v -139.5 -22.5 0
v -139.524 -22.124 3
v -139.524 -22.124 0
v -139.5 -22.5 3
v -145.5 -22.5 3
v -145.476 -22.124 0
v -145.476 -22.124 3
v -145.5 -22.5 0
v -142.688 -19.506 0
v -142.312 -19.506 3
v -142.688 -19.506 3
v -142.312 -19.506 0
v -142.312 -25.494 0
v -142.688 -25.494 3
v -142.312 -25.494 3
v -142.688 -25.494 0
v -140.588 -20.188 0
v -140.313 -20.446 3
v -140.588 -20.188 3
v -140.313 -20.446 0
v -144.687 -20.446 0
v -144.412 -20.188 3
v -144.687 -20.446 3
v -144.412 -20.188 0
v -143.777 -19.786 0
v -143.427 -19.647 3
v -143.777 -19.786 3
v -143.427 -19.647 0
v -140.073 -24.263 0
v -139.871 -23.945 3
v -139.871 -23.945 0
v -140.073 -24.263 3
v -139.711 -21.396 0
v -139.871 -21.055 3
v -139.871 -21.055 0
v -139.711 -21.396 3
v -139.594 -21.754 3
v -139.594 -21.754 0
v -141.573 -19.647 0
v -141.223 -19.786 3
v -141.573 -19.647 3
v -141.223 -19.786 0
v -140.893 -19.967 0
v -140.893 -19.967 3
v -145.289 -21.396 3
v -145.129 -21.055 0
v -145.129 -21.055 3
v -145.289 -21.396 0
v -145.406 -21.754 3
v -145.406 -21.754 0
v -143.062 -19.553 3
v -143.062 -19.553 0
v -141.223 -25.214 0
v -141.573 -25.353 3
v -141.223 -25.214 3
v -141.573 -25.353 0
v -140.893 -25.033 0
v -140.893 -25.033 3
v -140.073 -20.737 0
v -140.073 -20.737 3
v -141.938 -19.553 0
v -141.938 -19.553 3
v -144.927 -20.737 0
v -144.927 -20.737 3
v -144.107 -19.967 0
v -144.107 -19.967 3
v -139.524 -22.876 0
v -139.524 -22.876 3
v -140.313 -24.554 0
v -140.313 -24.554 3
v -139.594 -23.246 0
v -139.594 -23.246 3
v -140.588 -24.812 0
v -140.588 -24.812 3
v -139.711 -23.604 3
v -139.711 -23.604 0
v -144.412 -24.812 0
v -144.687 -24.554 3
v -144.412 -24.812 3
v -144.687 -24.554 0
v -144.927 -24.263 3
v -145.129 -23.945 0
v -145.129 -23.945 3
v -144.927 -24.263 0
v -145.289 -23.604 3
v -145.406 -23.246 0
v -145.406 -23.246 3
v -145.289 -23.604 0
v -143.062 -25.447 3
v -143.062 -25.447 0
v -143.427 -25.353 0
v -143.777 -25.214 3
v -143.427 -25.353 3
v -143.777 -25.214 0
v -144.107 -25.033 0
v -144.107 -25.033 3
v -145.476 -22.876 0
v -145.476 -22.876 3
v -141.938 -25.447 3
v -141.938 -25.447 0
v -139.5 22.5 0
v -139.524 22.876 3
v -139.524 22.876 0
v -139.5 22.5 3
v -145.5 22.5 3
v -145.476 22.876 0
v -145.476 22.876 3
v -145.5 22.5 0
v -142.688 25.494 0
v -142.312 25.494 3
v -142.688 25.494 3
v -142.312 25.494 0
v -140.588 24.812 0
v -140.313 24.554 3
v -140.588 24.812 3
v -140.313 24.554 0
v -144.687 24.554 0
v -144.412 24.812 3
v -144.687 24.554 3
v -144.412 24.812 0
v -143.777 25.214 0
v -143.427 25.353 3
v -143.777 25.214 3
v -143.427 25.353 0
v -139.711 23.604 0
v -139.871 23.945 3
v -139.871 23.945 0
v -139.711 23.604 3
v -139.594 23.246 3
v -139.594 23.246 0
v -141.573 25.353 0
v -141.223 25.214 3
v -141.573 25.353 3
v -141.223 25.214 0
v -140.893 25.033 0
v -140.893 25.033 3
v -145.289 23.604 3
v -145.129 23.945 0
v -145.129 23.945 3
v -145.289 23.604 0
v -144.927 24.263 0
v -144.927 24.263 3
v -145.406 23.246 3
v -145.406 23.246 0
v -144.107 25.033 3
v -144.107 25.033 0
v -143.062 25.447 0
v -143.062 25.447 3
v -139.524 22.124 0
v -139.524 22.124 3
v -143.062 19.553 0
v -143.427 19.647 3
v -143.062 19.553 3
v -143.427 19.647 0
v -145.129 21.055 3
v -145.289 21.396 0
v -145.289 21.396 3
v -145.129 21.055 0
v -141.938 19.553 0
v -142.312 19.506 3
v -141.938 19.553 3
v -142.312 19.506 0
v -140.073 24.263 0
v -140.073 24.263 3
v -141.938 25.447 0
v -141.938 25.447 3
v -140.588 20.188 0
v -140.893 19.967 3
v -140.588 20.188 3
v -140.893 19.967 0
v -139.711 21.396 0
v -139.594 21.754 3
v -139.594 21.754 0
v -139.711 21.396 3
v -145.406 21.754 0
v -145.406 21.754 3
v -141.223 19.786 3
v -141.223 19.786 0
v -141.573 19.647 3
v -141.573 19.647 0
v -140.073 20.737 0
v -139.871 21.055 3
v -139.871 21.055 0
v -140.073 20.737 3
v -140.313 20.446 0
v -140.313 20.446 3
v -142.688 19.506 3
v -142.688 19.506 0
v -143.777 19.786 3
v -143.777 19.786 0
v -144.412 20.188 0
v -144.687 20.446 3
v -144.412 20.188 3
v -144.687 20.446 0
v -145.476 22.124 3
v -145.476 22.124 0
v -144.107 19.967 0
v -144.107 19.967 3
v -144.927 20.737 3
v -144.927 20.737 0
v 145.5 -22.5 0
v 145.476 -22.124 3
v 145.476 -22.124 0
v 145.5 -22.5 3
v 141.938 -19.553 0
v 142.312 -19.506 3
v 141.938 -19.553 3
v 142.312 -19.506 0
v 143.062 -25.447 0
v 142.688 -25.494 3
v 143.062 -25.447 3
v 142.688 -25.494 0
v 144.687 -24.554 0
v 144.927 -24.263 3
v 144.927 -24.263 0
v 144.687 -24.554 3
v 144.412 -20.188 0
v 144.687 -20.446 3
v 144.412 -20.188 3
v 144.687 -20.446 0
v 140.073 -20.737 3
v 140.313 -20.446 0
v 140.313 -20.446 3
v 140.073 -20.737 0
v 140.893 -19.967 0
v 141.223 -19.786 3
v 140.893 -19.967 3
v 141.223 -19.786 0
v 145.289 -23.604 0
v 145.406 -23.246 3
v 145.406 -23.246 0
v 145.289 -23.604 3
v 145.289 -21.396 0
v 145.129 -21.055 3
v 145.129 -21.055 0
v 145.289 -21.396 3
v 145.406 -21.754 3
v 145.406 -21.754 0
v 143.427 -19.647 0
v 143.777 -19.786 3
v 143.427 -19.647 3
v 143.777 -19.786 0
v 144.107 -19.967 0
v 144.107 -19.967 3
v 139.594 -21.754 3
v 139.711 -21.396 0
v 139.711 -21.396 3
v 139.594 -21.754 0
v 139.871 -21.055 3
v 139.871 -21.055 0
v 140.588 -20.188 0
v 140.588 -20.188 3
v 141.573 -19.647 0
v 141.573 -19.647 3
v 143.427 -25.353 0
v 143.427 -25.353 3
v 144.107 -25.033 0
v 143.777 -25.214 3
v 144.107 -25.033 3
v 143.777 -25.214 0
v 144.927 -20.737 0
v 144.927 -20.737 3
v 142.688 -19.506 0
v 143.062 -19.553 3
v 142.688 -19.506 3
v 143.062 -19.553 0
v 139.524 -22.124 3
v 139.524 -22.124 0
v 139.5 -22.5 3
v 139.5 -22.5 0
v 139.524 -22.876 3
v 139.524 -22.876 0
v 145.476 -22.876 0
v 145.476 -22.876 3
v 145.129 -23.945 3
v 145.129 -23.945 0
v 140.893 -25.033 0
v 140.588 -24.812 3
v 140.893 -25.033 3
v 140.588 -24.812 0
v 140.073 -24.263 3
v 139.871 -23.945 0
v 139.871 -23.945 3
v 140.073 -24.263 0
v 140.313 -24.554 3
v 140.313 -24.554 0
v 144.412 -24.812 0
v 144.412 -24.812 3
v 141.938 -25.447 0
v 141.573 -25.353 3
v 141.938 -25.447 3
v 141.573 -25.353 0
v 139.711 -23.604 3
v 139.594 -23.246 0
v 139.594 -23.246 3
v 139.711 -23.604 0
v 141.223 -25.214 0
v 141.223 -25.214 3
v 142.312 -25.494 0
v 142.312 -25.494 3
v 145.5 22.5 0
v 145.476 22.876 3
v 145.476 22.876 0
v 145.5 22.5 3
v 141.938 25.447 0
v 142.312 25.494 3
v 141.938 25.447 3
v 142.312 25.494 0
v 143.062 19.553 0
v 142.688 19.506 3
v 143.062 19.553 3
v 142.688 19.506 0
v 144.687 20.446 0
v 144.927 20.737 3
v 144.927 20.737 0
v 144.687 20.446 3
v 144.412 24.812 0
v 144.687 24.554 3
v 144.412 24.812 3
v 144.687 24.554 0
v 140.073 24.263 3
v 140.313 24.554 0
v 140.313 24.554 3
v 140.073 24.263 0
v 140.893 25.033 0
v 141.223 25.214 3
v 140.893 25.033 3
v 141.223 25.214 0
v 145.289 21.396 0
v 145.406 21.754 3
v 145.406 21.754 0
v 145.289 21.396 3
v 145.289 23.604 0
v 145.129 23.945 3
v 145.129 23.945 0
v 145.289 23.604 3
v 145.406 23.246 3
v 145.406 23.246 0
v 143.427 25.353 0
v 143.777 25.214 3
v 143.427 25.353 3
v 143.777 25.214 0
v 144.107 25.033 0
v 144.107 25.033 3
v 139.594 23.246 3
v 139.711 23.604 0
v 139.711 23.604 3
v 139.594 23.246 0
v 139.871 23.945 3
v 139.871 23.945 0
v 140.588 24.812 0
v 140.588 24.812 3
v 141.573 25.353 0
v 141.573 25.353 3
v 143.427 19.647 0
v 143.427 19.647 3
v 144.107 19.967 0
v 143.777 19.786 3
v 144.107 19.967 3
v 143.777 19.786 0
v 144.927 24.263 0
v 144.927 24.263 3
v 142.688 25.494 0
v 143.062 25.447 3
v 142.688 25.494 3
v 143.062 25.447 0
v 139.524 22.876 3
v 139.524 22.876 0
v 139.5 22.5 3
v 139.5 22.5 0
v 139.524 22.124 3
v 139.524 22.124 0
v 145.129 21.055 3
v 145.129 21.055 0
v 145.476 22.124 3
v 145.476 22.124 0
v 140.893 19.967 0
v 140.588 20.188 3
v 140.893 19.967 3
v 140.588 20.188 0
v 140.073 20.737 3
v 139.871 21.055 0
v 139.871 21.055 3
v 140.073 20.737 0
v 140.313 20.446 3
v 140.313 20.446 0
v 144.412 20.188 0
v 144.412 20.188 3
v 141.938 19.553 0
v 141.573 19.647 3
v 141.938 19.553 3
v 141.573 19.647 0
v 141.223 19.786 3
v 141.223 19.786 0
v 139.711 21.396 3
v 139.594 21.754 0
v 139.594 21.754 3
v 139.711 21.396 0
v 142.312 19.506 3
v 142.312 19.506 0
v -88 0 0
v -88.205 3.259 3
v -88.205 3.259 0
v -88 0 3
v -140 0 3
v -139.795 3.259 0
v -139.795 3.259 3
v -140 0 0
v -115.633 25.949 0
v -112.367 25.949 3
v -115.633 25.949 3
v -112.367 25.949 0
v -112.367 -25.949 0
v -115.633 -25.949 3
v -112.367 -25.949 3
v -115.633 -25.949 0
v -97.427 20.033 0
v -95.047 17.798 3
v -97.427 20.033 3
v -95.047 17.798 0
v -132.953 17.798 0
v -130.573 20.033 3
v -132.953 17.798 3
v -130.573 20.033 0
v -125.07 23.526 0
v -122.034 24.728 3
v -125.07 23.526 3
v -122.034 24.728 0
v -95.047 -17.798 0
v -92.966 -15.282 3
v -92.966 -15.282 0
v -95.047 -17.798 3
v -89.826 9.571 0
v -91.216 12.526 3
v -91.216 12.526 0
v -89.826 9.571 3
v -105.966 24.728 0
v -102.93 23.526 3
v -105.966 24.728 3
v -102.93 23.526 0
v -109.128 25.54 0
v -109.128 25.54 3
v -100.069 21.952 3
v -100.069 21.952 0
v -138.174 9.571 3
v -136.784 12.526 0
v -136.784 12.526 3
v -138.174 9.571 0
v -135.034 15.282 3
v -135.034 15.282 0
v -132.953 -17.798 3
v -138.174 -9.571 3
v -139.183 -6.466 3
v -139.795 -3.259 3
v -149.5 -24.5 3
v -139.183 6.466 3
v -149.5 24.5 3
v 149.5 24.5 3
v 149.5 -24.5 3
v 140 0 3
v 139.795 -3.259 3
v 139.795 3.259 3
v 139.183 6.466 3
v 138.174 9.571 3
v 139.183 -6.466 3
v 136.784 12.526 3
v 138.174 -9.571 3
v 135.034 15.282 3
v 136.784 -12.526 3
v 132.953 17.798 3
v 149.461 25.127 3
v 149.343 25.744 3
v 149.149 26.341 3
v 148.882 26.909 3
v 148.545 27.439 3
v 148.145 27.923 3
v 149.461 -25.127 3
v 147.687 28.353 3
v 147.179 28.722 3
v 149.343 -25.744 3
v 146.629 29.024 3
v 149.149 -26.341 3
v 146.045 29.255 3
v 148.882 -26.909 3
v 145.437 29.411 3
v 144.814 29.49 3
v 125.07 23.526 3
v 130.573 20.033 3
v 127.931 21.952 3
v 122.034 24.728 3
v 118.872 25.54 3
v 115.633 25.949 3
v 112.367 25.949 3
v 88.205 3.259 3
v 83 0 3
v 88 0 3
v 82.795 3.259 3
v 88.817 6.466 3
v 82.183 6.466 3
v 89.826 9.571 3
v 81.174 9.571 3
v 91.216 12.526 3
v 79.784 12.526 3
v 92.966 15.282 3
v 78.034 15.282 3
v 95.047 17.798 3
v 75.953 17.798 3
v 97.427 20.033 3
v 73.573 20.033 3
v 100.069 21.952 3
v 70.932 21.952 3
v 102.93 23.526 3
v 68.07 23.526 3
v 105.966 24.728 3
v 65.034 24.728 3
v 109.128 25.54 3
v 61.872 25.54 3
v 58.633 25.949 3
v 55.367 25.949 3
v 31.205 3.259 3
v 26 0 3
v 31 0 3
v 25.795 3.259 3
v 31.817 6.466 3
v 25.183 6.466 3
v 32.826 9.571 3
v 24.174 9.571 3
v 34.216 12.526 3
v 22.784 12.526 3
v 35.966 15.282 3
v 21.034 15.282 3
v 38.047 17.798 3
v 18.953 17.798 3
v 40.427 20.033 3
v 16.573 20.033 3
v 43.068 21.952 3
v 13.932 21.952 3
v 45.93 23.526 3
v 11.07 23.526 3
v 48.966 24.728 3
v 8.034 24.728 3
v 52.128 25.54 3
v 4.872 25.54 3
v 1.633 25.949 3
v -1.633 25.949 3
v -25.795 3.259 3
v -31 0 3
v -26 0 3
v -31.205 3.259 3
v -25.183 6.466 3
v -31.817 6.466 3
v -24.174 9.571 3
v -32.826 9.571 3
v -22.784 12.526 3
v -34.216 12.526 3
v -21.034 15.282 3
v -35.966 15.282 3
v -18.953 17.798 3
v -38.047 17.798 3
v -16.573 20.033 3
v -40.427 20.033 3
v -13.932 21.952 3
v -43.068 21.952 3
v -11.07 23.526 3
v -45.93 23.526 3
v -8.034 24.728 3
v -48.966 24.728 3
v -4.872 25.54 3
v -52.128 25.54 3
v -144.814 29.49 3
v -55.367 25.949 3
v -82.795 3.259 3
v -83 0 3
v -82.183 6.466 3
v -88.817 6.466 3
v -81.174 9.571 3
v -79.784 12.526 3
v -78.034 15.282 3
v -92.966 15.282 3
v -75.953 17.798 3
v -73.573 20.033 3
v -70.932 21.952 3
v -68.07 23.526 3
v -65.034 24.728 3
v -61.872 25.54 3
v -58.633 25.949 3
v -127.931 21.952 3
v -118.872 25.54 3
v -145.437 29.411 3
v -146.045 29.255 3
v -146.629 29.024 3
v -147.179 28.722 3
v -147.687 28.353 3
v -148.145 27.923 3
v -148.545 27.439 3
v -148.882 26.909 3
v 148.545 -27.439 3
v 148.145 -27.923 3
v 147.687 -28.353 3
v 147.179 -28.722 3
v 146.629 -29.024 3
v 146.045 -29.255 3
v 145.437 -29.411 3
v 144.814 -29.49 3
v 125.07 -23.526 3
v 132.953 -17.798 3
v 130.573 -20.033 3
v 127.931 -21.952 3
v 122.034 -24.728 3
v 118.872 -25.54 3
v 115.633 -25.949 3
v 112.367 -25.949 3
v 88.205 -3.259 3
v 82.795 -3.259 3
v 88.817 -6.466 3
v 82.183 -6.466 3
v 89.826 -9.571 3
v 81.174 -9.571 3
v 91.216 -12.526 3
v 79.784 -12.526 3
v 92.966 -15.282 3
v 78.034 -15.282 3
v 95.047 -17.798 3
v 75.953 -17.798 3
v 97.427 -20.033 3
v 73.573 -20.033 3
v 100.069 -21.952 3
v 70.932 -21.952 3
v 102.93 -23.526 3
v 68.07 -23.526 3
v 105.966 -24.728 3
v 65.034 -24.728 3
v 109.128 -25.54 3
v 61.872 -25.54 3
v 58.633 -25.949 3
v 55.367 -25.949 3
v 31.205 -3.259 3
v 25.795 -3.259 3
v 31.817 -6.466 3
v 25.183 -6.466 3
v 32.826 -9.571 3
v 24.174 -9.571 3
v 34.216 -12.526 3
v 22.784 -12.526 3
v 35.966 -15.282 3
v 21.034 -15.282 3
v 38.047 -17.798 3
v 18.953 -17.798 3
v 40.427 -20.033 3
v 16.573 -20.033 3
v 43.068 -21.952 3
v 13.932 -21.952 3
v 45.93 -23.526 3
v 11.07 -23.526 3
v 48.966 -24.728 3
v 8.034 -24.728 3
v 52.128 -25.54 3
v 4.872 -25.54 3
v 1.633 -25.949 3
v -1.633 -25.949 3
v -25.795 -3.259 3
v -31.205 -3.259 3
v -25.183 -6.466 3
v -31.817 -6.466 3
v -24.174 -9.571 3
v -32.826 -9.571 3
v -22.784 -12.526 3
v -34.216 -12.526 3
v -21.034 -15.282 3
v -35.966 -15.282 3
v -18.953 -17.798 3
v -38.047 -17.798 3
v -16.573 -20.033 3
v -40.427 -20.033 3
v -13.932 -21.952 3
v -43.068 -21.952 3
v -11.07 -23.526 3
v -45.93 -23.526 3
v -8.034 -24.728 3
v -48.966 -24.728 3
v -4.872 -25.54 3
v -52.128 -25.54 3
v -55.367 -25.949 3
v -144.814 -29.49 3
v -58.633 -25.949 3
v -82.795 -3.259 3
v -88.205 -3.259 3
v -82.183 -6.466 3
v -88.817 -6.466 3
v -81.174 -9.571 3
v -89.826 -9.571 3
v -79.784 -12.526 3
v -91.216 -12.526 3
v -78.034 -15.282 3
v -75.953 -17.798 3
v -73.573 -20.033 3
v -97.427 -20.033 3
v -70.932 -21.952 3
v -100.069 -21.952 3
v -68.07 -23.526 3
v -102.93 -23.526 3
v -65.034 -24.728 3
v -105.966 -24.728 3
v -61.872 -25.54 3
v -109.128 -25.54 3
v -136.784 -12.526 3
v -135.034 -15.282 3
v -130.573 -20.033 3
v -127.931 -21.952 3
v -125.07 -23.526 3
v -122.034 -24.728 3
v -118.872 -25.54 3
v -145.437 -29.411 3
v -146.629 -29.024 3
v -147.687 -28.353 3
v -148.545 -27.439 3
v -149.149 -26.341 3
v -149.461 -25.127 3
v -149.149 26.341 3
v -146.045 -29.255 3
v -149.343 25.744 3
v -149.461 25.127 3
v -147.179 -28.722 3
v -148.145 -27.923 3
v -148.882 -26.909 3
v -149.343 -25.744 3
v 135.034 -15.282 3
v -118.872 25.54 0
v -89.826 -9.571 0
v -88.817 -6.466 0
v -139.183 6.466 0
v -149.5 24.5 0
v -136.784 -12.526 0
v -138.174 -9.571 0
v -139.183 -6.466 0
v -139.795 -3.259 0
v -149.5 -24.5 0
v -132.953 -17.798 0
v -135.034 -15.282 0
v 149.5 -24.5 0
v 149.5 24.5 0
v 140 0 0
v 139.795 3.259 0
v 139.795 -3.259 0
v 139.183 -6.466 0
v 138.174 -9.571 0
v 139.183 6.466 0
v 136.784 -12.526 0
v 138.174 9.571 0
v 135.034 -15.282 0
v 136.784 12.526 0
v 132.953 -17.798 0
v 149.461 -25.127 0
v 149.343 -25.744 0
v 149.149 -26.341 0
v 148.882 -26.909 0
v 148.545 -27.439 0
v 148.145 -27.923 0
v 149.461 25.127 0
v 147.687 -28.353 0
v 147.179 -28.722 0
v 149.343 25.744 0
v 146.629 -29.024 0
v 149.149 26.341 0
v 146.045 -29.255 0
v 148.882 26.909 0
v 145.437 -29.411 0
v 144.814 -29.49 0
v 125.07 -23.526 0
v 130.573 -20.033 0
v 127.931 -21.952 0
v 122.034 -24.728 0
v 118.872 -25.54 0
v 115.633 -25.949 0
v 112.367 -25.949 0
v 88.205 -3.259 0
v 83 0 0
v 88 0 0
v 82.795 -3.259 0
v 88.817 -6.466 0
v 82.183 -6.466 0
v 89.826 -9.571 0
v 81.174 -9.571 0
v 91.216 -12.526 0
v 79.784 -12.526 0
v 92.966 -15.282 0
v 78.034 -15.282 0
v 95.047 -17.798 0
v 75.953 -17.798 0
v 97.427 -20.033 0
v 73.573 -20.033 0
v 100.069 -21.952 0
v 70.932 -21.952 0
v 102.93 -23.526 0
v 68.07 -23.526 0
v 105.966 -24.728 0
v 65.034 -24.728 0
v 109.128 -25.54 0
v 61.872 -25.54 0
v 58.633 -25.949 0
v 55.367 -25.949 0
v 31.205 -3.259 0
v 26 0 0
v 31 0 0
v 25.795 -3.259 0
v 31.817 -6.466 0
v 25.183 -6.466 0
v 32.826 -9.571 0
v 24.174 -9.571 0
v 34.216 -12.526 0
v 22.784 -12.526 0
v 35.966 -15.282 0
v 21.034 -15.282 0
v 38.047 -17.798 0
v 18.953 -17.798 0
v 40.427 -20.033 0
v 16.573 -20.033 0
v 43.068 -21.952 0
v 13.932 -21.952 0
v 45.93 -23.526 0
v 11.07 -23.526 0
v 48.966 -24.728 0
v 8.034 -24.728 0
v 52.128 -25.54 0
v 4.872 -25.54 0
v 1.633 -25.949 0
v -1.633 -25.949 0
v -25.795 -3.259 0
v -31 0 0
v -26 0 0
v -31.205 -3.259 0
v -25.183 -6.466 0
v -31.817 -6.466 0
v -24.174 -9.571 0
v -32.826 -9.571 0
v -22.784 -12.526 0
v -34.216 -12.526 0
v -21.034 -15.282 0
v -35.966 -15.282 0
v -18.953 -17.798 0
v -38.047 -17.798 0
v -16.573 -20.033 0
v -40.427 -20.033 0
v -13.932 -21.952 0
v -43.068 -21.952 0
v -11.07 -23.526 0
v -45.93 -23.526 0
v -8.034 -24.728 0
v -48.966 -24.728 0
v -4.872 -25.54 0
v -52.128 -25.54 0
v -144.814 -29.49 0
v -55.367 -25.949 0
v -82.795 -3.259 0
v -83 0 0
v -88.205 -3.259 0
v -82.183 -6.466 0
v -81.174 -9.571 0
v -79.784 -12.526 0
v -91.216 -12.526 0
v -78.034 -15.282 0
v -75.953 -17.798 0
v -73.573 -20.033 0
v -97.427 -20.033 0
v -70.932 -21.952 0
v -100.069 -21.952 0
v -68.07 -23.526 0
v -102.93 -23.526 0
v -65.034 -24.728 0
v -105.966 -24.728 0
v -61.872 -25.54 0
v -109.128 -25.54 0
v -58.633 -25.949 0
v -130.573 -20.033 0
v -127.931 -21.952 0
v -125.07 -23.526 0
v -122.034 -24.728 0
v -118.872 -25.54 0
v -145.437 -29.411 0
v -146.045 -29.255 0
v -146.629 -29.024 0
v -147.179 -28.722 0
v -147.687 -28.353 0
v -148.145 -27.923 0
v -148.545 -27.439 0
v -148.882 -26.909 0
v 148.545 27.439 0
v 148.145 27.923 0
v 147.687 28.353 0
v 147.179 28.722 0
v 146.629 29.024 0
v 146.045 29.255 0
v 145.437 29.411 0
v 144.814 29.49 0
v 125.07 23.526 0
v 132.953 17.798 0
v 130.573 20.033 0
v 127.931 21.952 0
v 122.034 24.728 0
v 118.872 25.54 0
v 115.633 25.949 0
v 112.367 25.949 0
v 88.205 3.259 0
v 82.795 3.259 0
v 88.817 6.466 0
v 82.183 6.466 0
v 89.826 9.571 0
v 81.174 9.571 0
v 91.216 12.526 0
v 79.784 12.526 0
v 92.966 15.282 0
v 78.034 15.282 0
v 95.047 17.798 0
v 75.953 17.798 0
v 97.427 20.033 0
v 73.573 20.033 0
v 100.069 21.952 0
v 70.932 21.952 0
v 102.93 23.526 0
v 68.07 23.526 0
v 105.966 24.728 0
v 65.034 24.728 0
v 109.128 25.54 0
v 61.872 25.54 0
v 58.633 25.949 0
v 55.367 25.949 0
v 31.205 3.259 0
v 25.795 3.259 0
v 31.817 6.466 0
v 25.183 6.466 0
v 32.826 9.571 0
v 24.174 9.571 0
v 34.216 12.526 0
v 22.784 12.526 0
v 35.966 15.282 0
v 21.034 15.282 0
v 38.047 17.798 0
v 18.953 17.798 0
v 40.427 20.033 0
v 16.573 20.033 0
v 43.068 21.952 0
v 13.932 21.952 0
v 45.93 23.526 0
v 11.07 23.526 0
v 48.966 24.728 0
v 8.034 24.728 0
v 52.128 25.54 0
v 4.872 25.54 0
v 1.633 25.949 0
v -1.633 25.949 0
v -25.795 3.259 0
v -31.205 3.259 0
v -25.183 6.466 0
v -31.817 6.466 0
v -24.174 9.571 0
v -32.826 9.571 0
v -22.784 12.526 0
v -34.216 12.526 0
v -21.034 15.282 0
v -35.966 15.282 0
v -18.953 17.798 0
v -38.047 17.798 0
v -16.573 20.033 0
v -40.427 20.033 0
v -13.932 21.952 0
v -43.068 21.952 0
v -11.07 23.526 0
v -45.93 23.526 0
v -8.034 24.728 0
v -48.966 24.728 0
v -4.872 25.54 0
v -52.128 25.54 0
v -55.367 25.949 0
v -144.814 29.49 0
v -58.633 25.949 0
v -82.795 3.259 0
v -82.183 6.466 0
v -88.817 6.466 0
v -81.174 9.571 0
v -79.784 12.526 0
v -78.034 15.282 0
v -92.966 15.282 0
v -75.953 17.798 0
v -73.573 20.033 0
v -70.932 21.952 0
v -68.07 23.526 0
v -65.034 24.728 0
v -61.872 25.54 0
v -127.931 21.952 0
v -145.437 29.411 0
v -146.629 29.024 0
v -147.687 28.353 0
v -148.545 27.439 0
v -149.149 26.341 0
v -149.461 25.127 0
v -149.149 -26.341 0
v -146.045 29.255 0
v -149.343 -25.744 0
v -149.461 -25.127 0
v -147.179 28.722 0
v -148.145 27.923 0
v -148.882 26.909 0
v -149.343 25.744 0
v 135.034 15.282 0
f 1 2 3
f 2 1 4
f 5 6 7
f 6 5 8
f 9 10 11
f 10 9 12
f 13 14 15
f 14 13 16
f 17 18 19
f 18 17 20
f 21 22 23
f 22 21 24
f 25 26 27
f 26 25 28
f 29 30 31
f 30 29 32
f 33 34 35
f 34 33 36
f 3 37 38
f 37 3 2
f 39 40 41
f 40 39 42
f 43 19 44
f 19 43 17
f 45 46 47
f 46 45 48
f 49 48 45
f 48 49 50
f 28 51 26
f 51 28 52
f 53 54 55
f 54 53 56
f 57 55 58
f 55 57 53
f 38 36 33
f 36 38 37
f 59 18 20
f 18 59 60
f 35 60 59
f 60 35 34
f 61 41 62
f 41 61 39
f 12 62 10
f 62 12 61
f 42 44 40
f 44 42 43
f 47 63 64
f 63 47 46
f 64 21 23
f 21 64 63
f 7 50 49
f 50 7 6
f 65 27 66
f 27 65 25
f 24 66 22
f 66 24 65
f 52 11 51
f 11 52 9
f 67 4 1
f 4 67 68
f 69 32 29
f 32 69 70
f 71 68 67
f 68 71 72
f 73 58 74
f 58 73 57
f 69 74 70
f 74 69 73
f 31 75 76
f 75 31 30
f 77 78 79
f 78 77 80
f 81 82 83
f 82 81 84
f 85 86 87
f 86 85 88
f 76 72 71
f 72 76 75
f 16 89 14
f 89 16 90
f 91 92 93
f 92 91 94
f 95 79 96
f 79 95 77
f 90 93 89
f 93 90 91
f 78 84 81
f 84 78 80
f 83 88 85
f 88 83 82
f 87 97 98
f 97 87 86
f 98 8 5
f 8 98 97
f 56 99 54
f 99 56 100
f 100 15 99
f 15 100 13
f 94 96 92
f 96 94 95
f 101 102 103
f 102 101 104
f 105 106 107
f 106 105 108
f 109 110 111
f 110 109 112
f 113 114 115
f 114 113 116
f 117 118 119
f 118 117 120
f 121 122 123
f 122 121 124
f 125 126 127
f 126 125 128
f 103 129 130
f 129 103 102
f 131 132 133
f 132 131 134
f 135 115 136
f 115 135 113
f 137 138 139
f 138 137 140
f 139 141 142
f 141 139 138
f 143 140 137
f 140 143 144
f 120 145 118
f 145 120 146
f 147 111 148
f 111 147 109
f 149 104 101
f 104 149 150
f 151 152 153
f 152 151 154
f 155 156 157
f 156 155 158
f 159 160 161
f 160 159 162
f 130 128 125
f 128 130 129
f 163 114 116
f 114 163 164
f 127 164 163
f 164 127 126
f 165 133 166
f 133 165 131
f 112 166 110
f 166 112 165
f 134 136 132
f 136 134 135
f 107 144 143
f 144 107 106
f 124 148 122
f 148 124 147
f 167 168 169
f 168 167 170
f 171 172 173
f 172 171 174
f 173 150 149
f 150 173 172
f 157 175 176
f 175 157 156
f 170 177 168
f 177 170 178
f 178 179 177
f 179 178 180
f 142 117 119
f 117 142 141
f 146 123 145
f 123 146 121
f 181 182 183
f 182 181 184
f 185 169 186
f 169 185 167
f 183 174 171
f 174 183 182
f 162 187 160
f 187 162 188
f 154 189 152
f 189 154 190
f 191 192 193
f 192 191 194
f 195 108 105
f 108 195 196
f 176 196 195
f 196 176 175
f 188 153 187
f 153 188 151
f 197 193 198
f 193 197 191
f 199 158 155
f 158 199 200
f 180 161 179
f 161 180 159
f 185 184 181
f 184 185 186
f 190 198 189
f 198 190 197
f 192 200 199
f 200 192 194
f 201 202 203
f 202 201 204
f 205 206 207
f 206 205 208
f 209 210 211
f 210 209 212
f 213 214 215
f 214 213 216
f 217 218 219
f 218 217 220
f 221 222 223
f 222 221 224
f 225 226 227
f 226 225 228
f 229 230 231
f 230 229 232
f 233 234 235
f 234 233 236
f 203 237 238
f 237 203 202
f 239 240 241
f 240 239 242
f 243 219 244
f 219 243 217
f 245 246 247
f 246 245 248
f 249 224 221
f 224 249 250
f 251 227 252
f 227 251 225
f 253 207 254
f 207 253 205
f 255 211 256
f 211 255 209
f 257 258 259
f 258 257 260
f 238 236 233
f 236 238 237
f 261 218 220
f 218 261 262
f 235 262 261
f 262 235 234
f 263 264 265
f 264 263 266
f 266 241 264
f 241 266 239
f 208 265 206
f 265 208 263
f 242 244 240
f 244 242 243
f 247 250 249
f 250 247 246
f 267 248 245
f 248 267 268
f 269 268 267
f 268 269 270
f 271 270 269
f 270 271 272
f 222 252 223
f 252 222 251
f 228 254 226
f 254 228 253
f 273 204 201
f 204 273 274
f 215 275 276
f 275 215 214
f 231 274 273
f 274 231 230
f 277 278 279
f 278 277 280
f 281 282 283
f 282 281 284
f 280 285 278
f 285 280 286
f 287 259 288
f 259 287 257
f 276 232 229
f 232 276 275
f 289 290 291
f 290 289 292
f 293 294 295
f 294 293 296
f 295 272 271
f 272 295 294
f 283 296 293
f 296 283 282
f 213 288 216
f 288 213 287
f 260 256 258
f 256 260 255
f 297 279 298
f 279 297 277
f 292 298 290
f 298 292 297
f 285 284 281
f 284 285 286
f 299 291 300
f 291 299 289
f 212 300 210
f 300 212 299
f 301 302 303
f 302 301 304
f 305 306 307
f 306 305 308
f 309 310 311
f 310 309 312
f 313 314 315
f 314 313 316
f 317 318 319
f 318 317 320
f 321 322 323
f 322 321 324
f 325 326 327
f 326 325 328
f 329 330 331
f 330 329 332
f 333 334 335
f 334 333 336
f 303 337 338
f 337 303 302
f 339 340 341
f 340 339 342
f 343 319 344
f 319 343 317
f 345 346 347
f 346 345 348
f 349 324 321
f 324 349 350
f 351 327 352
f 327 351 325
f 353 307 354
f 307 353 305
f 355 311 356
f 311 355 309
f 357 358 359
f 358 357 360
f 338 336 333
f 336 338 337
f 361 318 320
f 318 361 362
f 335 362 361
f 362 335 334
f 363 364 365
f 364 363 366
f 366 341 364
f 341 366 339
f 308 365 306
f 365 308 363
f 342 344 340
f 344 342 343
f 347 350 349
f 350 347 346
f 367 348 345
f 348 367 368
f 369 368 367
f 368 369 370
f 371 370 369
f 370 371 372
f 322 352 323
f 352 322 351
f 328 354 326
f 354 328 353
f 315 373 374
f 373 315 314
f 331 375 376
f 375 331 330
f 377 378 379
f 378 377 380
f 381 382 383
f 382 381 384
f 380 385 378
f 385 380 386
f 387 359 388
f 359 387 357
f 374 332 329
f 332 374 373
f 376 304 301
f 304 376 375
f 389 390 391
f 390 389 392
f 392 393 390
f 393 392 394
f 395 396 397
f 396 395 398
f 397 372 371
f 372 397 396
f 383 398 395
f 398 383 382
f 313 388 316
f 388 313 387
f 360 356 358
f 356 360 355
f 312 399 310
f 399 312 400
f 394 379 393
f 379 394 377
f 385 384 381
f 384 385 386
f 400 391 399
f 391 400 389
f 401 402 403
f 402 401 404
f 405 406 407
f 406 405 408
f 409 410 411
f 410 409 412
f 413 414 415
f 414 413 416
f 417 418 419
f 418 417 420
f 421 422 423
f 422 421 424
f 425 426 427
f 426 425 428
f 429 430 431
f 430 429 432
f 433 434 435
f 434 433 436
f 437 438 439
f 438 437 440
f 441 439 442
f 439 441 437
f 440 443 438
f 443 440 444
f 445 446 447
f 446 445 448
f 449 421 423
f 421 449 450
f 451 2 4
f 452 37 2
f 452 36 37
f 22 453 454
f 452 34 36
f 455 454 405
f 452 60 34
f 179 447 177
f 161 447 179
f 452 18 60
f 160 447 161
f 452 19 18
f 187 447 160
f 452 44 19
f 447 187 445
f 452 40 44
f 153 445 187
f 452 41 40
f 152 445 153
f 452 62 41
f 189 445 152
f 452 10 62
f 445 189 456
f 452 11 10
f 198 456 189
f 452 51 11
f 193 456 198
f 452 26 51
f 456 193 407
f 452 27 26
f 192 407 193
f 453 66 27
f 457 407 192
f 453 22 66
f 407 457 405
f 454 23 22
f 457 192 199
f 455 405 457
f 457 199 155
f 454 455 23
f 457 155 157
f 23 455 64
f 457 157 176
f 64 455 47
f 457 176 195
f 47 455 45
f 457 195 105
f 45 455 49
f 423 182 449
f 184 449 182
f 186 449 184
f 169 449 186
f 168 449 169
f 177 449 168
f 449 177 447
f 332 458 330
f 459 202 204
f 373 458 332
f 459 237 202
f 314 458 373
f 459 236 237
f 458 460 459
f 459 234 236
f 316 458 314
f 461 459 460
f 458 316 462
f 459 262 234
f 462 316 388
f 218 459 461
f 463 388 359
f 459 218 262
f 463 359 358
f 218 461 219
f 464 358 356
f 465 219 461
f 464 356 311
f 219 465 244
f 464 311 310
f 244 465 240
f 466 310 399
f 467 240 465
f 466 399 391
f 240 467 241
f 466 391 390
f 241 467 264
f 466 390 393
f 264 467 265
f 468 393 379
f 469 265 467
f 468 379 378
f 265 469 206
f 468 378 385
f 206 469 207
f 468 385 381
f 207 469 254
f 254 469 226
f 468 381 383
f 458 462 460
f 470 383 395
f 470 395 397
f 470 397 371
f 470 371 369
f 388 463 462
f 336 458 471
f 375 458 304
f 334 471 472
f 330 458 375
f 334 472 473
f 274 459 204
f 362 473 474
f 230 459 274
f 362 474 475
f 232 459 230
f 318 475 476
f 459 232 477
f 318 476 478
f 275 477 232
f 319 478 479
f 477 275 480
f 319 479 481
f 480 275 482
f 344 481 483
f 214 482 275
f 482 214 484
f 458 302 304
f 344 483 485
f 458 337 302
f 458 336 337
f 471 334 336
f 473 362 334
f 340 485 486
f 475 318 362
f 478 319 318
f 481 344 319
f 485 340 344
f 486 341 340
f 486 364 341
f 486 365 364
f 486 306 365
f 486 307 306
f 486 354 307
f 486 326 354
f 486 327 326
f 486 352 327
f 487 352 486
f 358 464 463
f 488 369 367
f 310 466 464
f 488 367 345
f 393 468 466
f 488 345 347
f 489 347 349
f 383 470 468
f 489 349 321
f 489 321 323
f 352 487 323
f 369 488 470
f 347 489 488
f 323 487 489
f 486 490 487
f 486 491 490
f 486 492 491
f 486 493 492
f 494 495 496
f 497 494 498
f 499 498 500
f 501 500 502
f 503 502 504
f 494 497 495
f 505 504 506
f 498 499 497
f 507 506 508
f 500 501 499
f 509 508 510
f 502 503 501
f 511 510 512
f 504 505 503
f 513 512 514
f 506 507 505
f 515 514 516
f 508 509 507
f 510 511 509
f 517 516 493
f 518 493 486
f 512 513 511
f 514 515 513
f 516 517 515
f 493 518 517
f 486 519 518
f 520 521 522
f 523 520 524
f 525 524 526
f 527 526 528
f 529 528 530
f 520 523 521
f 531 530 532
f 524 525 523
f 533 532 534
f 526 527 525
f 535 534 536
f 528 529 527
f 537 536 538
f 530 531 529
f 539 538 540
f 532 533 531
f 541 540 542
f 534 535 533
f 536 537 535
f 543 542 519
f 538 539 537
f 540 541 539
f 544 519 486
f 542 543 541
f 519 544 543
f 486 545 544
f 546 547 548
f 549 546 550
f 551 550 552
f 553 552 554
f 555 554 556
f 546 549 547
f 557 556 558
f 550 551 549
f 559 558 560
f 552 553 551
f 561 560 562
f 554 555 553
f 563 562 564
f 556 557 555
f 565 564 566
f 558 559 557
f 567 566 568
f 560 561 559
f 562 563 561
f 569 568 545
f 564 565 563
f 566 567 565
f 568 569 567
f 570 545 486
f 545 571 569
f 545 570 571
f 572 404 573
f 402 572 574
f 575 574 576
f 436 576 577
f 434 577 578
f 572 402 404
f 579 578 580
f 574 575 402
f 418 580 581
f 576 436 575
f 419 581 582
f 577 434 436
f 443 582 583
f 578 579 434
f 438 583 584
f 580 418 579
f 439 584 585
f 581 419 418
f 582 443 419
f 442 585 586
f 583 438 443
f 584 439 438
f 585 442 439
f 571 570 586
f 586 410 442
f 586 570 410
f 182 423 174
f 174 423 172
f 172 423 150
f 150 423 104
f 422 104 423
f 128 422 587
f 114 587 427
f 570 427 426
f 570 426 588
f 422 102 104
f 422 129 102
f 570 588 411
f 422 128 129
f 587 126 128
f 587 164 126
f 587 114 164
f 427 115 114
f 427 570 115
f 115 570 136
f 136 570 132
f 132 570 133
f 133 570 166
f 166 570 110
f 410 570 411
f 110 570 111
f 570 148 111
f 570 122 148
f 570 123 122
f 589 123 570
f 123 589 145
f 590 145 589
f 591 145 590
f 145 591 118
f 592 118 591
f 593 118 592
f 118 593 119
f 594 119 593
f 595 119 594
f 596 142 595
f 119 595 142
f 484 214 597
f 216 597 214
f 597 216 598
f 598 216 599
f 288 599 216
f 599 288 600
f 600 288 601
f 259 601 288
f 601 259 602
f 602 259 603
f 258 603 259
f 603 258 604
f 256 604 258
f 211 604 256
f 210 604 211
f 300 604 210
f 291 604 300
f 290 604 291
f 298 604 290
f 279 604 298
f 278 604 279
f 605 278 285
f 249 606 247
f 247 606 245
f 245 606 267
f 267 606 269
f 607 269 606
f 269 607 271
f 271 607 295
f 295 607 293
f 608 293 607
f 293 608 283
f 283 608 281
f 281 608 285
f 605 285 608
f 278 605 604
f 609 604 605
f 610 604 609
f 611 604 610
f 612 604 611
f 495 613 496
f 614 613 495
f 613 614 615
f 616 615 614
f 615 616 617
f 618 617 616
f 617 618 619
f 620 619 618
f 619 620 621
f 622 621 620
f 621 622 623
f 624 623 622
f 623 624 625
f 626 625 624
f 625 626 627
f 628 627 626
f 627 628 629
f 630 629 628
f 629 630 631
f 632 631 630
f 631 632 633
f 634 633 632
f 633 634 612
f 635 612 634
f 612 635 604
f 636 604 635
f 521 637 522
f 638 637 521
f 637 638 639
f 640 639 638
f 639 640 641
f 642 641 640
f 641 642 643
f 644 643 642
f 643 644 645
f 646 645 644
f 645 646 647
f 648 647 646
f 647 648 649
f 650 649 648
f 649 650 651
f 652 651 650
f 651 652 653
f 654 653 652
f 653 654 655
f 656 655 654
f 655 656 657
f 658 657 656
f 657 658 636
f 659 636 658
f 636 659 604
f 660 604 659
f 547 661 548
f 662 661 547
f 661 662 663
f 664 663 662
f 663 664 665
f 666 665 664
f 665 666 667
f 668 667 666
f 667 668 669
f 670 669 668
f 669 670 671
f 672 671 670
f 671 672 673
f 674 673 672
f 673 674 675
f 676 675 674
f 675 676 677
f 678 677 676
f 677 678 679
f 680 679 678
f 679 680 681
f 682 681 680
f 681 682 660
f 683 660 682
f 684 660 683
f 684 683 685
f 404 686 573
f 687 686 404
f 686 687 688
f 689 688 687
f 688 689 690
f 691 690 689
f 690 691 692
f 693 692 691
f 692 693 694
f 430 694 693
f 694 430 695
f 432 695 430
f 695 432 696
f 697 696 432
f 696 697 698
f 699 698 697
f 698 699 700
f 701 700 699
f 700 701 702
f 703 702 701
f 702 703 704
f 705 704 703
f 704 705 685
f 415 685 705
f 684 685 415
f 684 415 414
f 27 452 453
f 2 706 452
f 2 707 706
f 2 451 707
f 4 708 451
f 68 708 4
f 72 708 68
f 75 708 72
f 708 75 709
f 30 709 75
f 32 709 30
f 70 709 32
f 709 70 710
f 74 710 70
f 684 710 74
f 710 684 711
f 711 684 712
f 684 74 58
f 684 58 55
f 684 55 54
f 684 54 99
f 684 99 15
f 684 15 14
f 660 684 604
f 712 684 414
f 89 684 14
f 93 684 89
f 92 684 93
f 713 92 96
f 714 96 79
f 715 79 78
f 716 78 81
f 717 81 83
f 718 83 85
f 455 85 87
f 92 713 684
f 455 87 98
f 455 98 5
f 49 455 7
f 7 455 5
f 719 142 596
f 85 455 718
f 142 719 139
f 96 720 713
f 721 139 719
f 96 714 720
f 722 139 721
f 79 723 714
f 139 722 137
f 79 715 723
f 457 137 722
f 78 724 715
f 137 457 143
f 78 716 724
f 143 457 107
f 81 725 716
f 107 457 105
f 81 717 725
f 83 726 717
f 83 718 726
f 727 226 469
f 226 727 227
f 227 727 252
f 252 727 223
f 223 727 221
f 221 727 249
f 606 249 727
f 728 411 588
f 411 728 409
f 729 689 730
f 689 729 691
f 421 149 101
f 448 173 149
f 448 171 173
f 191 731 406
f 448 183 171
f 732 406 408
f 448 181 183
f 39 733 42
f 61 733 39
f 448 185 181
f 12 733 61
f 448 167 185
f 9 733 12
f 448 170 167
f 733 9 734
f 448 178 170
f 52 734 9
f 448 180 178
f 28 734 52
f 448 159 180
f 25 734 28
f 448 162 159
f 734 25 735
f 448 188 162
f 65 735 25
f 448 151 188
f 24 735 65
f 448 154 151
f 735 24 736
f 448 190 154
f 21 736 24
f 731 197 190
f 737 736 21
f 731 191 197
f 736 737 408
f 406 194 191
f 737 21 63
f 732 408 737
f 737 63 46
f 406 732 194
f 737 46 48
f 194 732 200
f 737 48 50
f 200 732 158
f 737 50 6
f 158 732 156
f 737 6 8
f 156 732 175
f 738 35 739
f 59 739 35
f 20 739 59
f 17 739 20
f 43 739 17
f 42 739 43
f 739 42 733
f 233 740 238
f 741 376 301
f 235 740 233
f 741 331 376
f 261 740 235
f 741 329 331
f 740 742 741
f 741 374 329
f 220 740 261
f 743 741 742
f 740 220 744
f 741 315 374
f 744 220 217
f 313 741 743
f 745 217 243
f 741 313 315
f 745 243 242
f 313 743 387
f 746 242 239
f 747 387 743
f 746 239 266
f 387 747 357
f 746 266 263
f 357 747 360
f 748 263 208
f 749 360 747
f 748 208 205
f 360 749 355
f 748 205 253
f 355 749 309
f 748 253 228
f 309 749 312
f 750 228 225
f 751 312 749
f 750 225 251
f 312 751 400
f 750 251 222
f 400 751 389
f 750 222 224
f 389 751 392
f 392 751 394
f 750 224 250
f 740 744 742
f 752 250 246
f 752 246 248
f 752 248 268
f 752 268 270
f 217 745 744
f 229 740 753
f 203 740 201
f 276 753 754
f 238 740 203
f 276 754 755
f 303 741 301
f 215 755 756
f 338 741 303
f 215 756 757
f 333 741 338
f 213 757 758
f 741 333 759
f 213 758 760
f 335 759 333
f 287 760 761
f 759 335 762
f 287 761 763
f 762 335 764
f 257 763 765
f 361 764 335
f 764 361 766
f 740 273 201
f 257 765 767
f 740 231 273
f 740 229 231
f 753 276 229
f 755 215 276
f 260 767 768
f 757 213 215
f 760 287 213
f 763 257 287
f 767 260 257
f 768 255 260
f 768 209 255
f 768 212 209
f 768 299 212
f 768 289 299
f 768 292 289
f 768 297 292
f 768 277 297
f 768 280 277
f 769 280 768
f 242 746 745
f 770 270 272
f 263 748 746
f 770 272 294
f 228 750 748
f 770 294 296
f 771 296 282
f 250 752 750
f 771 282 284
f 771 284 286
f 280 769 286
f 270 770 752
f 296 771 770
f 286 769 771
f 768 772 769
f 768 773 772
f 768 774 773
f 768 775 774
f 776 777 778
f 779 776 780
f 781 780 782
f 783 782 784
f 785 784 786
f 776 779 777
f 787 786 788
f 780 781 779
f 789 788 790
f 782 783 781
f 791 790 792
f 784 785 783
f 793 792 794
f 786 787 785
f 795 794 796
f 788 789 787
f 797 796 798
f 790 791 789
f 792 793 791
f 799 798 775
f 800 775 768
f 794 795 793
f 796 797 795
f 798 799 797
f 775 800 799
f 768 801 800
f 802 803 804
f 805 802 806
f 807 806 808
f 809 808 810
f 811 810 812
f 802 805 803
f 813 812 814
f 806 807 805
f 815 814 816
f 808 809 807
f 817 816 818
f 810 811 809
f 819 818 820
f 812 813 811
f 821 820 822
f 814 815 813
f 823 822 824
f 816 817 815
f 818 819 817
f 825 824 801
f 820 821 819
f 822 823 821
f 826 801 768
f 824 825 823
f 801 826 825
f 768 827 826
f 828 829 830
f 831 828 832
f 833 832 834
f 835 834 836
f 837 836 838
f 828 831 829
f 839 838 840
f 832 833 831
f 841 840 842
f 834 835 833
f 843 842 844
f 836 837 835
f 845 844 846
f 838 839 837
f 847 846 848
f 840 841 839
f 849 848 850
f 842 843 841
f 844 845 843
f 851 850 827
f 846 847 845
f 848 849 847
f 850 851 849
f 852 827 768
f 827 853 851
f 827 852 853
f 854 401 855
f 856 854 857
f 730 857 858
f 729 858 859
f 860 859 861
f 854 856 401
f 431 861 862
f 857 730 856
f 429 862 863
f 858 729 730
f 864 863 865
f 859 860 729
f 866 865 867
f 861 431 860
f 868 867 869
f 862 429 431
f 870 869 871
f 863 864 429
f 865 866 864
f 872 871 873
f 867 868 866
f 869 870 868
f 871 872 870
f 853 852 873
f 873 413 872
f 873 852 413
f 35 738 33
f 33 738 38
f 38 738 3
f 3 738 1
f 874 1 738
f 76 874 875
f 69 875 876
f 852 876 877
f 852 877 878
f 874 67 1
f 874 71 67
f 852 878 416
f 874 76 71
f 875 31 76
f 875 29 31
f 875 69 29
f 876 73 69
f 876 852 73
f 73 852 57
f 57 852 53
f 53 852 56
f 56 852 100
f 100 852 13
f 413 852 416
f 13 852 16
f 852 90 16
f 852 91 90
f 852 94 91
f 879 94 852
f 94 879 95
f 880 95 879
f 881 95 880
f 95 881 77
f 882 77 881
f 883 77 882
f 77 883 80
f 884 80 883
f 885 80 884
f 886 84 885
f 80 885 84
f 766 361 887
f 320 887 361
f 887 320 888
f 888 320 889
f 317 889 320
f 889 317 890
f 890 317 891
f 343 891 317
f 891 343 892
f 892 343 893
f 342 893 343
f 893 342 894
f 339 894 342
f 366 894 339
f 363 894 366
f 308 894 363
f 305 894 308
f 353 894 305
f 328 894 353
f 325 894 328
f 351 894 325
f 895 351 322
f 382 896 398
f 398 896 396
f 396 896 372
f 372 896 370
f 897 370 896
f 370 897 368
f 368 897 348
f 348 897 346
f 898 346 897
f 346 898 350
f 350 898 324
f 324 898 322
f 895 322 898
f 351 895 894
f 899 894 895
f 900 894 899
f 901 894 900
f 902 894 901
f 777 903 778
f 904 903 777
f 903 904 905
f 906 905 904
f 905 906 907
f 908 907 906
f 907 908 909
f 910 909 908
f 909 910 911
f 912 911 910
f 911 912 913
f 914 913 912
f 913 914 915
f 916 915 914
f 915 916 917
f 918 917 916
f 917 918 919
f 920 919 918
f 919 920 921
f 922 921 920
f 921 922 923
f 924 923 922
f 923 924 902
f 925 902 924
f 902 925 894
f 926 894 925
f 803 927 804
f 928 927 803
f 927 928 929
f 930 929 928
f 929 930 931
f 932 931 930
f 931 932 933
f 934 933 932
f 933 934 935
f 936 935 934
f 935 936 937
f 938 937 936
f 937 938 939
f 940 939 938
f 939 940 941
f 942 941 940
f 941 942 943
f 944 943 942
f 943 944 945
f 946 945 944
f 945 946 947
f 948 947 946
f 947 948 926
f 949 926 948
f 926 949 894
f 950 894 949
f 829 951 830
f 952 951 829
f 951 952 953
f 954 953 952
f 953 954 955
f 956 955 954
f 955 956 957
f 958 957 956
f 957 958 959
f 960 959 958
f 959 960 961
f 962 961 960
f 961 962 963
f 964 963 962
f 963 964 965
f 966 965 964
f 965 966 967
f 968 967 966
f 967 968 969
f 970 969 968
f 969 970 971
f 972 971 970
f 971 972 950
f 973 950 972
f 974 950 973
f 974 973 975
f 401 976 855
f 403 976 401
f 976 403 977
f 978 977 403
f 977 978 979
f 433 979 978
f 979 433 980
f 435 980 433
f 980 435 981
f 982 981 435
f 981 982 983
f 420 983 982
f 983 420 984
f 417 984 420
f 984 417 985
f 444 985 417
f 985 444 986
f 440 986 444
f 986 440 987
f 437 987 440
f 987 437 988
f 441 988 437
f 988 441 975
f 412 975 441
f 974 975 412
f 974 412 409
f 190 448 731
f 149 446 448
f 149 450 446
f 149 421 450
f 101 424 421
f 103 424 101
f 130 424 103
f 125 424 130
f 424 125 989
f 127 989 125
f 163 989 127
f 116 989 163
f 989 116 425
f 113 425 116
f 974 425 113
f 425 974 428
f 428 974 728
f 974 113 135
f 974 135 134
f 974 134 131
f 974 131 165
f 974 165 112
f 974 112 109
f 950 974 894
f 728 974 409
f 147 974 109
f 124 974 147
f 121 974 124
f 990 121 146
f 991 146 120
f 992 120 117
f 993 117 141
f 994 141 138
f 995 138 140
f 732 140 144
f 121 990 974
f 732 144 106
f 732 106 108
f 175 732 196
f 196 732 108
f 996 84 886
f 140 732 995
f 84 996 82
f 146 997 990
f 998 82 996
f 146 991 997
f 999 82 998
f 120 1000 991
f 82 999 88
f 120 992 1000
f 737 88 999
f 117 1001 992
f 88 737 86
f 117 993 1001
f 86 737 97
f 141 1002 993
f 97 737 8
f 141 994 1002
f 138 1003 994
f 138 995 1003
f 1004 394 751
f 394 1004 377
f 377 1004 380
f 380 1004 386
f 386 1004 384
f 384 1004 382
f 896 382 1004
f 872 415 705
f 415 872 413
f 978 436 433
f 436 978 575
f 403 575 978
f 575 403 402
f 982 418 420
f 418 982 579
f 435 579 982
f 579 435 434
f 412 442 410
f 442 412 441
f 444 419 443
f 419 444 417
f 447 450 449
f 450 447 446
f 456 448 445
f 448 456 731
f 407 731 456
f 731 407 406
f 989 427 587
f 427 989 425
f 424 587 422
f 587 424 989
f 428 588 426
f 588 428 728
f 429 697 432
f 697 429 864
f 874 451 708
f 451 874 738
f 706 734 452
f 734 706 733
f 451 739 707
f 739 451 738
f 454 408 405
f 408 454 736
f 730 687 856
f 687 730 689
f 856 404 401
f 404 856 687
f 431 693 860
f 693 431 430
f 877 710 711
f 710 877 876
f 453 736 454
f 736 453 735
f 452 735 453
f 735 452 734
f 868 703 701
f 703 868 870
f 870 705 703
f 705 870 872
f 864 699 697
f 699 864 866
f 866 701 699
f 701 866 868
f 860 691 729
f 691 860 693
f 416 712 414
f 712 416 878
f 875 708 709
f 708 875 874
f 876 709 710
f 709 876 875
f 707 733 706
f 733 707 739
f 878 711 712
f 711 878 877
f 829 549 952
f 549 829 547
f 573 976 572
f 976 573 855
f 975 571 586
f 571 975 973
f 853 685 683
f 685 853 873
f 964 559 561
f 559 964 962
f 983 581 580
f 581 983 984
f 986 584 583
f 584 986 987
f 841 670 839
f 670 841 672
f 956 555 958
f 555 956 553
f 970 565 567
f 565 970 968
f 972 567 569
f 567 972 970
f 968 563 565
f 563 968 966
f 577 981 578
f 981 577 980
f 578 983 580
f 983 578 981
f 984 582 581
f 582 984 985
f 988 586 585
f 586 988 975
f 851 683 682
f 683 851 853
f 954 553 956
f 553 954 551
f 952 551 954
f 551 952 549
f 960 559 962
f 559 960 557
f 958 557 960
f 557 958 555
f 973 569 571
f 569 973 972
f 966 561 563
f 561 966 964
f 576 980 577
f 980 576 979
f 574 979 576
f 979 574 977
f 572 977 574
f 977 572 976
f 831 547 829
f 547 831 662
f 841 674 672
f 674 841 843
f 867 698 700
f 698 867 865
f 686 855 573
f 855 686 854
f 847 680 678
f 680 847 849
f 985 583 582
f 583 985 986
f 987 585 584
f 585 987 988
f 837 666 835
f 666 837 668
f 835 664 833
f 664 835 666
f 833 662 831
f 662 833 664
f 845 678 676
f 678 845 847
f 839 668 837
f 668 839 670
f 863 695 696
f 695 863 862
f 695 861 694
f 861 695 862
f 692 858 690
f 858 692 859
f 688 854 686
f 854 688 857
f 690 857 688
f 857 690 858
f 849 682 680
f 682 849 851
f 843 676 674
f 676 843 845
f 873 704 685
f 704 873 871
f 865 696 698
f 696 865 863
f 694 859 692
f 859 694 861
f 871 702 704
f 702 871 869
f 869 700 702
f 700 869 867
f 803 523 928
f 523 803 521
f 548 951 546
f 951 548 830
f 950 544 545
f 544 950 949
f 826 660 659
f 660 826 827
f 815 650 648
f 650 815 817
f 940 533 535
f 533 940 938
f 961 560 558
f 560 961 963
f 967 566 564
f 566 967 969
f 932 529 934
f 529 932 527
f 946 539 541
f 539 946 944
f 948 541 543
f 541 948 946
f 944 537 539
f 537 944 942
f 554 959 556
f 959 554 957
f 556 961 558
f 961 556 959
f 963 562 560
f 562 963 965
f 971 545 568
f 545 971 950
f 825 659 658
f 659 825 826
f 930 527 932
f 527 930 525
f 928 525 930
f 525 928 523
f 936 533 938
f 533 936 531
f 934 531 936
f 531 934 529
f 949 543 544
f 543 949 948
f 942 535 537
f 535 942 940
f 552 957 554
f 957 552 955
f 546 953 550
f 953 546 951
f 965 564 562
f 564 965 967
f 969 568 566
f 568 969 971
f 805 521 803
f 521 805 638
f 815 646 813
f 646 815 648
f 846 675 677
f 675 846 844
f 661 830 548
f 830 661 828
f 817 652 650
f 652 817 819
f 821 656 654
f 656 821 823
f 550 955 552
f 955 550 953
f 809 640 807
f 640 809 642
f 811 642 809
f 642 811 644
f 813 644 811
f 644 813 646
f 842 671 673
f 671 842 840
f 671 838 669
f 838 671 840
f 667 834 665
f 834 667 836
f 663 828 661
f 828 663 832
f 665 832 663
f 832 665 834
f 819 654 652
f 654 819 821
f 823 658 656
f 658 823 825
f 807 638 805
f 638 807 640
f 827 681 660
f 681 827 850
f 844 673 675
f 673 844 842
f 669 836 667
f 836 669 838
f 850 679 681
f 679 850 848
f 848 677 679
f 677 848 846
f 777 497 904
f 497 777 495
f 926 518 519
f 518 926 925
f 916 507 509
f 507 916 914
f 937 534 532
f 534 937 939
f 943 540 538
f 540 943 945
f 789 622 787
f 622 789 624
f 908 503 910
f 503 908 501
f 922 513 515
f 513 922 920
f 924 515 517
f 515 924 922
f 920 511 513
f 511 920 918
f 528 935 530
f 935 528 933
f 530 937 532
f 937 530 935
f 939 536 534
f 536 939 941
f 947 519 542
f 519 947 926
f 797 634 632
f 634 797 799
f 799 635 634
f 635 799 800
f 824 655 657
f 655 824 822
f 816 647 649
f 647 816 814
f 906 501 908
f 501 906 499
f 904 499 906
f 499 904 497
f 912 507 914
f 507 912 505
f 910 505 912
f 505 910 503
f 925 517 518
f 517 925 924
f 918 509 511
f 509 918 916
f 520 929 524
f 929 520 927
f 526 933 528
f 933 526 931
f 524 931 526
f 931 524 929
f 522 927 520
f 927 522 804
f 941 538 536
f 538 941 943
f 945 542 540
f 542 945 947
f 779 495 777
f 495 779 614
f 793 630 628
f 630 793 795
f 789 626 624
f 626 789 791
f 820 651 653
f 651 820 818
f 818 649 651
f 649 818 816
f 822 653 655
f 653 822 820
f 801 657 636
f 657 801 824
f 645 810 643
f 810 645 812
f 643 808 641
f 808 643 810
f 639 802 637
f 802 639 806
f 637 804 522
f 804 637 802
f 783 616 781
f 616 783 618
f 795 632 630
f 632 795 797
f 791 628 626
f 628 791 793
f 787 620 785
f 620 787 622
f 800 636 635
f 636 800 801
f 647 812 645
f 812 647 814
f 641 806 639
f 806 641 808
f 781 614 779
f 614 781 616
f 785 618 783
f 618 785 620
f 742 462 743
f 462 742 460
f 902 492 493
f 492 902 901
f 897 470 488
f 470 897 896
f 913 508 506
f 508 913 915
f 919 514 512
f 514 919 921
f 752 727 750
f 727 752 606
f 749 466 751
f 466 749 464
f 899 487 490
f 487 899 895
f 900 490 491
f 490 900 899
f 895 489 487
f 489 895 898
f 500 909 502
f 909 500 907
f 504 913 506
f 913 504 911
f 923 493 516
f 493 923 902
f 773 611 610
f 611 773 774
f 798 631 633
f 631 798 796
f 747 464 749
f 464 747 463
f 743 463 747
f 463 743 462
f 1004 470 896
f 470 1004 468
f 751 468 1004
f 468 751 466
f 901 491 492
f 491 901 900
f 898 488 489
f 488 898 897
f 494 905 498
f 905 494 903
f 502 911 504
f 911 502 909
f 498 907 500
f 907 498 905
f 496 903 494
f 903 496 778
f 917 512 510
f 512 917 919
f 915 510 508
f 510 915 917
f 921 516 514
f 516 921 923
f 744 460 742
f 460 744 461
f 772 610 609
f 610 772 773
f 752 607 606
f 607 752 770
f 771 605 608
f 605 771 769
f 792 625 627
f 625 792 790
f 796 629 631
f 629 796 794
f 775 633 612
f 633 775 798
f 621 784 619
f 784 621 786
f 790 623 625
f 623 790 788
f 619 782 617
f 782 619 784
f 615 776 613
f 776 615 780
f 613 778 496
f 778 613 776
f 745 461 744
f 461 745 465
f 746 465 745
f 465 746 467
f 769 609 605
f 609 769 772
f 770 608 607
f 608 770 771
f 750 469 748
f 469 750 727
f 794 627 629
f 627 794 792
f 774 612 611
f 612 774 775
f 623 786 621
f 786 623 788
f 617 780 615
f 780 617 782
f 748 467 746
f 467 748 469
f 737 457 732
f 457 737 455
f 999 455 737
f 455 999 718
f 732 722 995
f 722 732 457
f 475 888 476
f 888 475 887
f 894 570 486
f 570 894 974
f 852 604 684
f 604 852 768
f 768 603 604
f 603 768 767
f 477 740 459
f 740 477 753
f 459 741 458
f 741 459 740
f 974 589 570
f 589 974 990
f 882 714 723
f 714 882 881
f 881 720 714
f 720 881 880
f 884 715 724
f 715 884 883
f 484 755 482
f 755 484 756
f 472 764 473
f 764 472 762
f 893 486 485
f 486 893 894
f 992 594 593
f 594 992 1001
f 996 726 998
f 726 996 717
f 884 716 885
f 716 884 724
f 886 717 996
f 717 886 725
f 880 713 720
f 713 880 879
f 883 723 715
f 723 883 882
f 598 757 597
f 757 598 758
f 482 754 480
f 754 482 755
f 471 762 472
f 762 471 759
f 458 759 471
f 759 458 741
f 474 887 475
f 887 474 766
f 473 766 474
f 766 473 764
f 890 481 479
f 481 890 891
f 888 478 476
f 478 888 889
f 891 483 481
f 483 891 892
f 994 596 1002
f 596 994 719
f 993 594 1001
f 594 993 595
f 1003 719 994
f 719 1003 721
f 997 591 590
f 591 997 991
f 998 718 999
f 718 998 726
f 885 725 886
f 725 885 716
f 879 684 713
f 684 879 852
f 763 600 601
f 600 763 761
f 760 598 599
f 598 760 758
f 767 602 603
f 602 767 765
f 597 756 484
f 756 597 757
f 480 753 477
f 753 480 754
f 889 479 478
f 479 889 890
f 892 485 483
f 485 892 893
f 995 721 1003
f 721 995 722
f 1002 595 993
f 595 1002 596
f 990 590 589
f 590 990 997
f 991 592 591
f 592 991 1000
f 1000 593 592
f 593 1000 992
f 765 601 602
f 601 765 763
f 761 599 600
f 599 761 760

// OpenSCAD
$fn = 50;


difference() {
	union() {
		hull() {
			translate(v = [-144.5000000000, 24.5000000000, 0]) {
				cylinder(h = 3, r = 5);
			}
			translate(v = [144.5000000000, 24.5000000000, 0]) {
				cylinder(h = 3, r = 5);
			}
			translate(v = [-144.5000000000, -24.5000000000, 0]) {
				cylinder(h = 3, r = 5);
			}
			translate(v = [144.5000000000, -24.5000000000, 0]) {
				cylinder(h = 3, r = 5);
			}
		}
	}
	union() {
		#translate(v = [-142.5000000000, -22.5000000000, -100.0000000000]) {
			cylinder(h = 200, r = 3.0000000000);
		}
		#translate(v = [-142.5000000000, 22.5000000000, -100.0000000000]) {
			cylinder(h = 200, r = 3.0000000000);
		}
		#translate(v = [142.5000000000, -22.5000000000, -100.0000000000]) {
			cylinder(h = 200, r = 3.0000000000);
		}
		#translate(v = [142.5000000000, 22.5000000000, -100.0000000000]) {
			cylinder(h = 200, r = 3.0000000000);
		}
		#translate(v = [-114.0000000000, 0, 0]) {
			cylinder(h = 3, r = 26.0000000000);
		}
		#translate(v = [-57.0000000000, 0, 0]) {
			cylinder(h = 3, r = 26.0000000000);
		}
		#cylinder(h = 3, r = 26.0000000000);
		#translate(v = [57.0000000000, 0, 0]) {
			cylinder(h = 3, r = 26.0000000000);
		}
		#translate(v = [114.0000000000, 0, 0]) {
			cylinder(h = 3, r = 26.0000000000);
		}
	}
}
